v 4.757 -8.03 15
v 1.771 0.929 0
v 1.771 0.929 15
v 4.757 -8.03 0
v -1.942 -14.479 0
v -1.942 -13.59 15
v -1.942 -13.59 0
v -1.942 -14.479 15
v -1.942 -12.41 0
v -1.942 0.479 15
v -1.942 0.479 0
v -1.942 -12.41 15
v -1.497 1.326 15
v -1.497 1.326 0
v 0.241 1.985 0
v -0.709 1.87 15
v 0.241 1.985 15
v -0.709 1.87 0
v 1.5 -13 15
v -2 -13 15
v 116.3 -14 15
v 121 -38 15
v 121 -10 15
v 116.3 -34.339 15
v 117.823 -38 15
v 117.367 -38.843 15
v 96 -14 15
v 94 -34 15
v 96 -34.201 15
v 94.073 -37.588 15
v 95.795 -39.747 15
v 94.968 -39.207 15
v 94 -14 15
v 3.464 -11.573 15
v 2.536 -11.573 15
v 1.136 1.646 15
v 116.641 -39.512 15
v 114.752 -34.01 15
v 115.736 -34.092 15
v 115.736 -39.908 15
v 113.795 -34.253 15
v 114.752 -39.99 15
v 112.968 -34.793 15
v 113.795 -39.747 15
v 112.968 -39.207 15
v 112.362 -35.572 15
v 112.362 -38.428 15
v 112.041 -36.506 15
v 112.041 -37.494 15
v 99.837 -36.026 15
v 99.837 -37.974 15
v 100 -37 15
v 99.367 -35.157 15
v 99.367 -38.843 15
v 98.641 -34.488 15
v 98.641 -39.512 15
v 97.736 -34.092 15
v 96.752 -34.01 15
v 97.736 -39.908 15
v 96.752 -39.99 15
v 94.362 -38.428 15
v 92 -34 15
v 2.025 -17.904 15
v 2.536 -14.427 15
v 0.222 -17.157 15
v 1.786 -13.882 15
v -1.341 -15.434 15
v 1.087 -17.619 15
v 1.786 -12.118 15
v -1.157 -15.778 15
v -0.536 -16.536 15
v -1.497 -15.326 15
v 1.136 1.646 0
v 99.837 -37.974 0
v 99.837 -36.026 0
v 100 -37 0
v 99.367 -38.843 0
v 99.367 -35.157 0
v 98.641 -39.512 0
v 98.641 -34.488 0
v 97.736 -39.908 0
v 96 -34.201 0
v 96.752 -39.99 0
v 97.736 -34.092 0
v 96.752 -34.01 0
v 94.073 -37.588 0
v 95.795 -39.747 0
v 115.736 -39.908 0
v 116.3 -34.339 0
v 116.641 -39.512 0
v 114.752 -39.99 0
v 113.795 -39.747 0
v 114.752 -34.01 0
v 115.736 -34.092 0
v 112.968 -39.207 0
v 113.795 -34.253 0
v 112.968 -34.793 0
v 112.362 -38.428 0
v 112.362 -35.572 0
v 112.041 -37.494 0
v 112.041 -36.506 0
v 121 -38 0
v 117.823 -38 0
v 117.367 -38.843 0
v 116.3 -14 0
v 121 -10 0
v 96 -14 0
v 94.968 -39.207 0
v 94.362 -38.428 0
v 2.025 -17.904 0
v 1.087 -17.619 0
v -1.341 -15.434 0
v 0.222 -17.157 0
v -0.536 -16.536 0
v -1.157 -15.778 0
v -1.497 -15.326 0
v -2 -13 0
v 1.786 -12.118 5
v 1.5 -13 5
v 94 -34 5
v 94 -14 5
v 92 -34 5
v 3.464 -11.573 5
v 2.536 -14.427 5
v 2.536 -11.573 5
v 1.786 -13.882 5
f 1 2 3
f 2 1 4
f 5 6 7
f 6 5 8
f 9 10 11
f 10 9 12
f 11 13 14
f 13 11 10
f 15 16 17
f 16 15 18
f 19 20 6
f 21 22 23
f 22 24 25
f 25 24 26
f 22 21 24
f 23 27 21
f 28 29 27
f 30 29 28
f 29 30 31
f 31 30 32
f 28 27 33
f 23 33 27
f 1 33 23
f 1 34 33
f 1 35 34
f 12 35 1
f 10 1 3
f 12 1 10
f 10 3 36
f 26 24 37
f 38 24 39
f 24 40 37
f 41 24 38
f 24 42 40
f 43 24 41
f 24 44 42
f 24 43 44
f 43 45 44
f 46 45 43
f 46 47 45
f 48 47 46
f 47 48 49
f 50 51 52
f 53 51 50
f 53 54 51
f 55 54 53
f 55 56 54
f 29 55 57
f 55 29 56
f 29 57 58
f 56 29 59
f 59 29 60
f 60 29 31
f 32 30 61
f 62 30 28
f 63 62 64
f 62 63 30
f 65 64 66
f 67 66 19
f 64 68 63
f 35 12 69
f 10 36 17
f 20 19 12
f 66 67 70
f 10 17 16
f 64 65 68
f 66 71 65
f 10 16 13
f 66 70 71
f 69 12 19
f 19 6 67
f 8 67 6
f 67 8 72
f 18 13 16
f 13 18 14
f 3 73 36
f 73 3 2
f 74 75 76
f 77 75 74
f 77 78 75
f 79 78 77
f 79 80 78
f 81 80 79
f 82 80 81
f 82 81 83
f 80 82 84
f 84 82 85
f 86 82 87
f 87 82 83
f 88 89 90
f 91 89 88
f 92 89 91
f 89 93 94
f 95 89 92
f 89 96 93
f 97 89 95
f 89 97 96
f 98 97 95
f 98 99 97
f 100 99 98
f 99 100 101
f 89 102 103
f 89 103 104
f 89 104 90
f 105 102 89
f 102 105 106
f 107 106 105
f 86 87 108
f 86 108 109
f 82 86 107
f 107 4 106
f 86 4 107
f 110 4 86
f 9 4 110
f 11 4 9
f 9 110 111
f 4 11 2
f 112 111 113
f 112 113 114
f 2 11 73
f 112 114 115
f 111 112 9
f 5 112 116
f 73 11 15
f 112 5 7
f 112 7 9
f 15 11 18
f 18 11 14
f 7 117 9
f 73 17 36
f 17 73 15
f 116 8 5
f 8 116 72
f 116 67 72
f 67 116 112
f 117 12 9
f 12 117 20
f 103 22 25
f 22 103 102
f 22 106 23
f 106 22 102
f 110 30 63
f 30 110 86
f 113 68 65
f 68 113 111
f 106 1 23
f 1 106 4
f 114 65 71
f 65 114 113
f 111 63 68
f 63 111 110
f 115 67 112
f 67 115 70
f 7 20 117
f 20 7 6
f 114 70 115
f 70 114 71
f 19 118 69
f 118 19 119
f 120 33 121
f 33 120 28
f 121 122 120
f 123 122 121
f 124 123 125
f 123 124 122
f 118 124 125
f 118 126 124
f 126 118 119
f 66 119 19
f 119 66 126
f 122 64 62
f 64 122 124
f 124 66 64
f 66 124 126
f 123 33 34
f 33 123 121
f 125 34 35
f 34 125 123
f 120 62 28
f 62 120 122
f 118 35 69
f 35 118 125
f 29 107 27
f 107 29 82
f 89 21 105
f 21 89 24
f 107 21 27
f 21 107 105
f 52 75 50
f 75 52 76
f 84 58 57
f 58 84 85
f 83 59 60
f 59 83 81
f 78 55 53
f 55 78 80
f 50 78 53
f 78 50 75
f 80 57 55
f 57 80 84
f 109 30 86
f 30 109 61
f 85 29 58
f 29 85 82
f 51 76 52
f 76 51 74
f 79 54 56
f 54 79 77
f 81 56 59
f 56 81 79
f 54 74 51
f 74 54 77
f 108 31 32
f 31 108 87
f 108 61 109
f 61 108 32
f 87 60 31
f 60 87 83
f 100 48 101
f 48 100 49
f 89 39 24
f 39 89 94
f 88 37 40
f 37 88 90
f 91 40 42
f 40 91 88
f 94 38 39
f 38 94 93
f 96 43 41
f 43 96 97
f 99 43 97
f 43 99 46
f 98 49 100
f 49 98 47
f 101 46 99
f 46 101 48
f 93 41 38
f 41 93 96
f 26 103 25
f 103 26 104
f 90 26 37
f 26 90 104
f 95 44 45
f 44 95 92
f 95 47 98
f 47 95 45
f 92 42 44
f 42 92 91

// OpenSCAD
$fs = 1;
$fa = 1;

module filament_holder_shape() {
    hull() {
    cylinder(r=2, h=15);
    translate([0, -14, 0]) cylinder(r=2, h=15);
    translate([5, -15, 0]) cylinder(r=2, h=15);
    }
    
    hull() {
    translate([3, -13, 0]) cylinder(r=5, h=15);
    translate([96, -38, 0]) cube([25, 28, 15]);
        //cylinder(r=10, h=15);
    }
}

module filament_holder_negative() {
    hull() {
    translate([3, -13, 0]) cylinder(r=1.5, h=15);
    translate([92, -34, 0]) cube([2, 20, 15]);
        //cylinder(r=10, h=15);
    }   
}

%translate([96, -34, -7.5]) cube([20, 20, 30]);


module filament_holder() {
    difference() {
        filament_holder_shape(); 
        translate([0, 0, 5]) color([1, 0, 0]) filament_holder_negative();

        // 2020 extrusion
        translate([96, -44, -7.5]) cube([20.3, 30, 32]);
    }
    
    
}

filament_holder();

// fingers

translate([97, -37, 0]) cylinder(r=3, h=15);
translate([115, -37, 0]) cylinder(r=3, h=15);
